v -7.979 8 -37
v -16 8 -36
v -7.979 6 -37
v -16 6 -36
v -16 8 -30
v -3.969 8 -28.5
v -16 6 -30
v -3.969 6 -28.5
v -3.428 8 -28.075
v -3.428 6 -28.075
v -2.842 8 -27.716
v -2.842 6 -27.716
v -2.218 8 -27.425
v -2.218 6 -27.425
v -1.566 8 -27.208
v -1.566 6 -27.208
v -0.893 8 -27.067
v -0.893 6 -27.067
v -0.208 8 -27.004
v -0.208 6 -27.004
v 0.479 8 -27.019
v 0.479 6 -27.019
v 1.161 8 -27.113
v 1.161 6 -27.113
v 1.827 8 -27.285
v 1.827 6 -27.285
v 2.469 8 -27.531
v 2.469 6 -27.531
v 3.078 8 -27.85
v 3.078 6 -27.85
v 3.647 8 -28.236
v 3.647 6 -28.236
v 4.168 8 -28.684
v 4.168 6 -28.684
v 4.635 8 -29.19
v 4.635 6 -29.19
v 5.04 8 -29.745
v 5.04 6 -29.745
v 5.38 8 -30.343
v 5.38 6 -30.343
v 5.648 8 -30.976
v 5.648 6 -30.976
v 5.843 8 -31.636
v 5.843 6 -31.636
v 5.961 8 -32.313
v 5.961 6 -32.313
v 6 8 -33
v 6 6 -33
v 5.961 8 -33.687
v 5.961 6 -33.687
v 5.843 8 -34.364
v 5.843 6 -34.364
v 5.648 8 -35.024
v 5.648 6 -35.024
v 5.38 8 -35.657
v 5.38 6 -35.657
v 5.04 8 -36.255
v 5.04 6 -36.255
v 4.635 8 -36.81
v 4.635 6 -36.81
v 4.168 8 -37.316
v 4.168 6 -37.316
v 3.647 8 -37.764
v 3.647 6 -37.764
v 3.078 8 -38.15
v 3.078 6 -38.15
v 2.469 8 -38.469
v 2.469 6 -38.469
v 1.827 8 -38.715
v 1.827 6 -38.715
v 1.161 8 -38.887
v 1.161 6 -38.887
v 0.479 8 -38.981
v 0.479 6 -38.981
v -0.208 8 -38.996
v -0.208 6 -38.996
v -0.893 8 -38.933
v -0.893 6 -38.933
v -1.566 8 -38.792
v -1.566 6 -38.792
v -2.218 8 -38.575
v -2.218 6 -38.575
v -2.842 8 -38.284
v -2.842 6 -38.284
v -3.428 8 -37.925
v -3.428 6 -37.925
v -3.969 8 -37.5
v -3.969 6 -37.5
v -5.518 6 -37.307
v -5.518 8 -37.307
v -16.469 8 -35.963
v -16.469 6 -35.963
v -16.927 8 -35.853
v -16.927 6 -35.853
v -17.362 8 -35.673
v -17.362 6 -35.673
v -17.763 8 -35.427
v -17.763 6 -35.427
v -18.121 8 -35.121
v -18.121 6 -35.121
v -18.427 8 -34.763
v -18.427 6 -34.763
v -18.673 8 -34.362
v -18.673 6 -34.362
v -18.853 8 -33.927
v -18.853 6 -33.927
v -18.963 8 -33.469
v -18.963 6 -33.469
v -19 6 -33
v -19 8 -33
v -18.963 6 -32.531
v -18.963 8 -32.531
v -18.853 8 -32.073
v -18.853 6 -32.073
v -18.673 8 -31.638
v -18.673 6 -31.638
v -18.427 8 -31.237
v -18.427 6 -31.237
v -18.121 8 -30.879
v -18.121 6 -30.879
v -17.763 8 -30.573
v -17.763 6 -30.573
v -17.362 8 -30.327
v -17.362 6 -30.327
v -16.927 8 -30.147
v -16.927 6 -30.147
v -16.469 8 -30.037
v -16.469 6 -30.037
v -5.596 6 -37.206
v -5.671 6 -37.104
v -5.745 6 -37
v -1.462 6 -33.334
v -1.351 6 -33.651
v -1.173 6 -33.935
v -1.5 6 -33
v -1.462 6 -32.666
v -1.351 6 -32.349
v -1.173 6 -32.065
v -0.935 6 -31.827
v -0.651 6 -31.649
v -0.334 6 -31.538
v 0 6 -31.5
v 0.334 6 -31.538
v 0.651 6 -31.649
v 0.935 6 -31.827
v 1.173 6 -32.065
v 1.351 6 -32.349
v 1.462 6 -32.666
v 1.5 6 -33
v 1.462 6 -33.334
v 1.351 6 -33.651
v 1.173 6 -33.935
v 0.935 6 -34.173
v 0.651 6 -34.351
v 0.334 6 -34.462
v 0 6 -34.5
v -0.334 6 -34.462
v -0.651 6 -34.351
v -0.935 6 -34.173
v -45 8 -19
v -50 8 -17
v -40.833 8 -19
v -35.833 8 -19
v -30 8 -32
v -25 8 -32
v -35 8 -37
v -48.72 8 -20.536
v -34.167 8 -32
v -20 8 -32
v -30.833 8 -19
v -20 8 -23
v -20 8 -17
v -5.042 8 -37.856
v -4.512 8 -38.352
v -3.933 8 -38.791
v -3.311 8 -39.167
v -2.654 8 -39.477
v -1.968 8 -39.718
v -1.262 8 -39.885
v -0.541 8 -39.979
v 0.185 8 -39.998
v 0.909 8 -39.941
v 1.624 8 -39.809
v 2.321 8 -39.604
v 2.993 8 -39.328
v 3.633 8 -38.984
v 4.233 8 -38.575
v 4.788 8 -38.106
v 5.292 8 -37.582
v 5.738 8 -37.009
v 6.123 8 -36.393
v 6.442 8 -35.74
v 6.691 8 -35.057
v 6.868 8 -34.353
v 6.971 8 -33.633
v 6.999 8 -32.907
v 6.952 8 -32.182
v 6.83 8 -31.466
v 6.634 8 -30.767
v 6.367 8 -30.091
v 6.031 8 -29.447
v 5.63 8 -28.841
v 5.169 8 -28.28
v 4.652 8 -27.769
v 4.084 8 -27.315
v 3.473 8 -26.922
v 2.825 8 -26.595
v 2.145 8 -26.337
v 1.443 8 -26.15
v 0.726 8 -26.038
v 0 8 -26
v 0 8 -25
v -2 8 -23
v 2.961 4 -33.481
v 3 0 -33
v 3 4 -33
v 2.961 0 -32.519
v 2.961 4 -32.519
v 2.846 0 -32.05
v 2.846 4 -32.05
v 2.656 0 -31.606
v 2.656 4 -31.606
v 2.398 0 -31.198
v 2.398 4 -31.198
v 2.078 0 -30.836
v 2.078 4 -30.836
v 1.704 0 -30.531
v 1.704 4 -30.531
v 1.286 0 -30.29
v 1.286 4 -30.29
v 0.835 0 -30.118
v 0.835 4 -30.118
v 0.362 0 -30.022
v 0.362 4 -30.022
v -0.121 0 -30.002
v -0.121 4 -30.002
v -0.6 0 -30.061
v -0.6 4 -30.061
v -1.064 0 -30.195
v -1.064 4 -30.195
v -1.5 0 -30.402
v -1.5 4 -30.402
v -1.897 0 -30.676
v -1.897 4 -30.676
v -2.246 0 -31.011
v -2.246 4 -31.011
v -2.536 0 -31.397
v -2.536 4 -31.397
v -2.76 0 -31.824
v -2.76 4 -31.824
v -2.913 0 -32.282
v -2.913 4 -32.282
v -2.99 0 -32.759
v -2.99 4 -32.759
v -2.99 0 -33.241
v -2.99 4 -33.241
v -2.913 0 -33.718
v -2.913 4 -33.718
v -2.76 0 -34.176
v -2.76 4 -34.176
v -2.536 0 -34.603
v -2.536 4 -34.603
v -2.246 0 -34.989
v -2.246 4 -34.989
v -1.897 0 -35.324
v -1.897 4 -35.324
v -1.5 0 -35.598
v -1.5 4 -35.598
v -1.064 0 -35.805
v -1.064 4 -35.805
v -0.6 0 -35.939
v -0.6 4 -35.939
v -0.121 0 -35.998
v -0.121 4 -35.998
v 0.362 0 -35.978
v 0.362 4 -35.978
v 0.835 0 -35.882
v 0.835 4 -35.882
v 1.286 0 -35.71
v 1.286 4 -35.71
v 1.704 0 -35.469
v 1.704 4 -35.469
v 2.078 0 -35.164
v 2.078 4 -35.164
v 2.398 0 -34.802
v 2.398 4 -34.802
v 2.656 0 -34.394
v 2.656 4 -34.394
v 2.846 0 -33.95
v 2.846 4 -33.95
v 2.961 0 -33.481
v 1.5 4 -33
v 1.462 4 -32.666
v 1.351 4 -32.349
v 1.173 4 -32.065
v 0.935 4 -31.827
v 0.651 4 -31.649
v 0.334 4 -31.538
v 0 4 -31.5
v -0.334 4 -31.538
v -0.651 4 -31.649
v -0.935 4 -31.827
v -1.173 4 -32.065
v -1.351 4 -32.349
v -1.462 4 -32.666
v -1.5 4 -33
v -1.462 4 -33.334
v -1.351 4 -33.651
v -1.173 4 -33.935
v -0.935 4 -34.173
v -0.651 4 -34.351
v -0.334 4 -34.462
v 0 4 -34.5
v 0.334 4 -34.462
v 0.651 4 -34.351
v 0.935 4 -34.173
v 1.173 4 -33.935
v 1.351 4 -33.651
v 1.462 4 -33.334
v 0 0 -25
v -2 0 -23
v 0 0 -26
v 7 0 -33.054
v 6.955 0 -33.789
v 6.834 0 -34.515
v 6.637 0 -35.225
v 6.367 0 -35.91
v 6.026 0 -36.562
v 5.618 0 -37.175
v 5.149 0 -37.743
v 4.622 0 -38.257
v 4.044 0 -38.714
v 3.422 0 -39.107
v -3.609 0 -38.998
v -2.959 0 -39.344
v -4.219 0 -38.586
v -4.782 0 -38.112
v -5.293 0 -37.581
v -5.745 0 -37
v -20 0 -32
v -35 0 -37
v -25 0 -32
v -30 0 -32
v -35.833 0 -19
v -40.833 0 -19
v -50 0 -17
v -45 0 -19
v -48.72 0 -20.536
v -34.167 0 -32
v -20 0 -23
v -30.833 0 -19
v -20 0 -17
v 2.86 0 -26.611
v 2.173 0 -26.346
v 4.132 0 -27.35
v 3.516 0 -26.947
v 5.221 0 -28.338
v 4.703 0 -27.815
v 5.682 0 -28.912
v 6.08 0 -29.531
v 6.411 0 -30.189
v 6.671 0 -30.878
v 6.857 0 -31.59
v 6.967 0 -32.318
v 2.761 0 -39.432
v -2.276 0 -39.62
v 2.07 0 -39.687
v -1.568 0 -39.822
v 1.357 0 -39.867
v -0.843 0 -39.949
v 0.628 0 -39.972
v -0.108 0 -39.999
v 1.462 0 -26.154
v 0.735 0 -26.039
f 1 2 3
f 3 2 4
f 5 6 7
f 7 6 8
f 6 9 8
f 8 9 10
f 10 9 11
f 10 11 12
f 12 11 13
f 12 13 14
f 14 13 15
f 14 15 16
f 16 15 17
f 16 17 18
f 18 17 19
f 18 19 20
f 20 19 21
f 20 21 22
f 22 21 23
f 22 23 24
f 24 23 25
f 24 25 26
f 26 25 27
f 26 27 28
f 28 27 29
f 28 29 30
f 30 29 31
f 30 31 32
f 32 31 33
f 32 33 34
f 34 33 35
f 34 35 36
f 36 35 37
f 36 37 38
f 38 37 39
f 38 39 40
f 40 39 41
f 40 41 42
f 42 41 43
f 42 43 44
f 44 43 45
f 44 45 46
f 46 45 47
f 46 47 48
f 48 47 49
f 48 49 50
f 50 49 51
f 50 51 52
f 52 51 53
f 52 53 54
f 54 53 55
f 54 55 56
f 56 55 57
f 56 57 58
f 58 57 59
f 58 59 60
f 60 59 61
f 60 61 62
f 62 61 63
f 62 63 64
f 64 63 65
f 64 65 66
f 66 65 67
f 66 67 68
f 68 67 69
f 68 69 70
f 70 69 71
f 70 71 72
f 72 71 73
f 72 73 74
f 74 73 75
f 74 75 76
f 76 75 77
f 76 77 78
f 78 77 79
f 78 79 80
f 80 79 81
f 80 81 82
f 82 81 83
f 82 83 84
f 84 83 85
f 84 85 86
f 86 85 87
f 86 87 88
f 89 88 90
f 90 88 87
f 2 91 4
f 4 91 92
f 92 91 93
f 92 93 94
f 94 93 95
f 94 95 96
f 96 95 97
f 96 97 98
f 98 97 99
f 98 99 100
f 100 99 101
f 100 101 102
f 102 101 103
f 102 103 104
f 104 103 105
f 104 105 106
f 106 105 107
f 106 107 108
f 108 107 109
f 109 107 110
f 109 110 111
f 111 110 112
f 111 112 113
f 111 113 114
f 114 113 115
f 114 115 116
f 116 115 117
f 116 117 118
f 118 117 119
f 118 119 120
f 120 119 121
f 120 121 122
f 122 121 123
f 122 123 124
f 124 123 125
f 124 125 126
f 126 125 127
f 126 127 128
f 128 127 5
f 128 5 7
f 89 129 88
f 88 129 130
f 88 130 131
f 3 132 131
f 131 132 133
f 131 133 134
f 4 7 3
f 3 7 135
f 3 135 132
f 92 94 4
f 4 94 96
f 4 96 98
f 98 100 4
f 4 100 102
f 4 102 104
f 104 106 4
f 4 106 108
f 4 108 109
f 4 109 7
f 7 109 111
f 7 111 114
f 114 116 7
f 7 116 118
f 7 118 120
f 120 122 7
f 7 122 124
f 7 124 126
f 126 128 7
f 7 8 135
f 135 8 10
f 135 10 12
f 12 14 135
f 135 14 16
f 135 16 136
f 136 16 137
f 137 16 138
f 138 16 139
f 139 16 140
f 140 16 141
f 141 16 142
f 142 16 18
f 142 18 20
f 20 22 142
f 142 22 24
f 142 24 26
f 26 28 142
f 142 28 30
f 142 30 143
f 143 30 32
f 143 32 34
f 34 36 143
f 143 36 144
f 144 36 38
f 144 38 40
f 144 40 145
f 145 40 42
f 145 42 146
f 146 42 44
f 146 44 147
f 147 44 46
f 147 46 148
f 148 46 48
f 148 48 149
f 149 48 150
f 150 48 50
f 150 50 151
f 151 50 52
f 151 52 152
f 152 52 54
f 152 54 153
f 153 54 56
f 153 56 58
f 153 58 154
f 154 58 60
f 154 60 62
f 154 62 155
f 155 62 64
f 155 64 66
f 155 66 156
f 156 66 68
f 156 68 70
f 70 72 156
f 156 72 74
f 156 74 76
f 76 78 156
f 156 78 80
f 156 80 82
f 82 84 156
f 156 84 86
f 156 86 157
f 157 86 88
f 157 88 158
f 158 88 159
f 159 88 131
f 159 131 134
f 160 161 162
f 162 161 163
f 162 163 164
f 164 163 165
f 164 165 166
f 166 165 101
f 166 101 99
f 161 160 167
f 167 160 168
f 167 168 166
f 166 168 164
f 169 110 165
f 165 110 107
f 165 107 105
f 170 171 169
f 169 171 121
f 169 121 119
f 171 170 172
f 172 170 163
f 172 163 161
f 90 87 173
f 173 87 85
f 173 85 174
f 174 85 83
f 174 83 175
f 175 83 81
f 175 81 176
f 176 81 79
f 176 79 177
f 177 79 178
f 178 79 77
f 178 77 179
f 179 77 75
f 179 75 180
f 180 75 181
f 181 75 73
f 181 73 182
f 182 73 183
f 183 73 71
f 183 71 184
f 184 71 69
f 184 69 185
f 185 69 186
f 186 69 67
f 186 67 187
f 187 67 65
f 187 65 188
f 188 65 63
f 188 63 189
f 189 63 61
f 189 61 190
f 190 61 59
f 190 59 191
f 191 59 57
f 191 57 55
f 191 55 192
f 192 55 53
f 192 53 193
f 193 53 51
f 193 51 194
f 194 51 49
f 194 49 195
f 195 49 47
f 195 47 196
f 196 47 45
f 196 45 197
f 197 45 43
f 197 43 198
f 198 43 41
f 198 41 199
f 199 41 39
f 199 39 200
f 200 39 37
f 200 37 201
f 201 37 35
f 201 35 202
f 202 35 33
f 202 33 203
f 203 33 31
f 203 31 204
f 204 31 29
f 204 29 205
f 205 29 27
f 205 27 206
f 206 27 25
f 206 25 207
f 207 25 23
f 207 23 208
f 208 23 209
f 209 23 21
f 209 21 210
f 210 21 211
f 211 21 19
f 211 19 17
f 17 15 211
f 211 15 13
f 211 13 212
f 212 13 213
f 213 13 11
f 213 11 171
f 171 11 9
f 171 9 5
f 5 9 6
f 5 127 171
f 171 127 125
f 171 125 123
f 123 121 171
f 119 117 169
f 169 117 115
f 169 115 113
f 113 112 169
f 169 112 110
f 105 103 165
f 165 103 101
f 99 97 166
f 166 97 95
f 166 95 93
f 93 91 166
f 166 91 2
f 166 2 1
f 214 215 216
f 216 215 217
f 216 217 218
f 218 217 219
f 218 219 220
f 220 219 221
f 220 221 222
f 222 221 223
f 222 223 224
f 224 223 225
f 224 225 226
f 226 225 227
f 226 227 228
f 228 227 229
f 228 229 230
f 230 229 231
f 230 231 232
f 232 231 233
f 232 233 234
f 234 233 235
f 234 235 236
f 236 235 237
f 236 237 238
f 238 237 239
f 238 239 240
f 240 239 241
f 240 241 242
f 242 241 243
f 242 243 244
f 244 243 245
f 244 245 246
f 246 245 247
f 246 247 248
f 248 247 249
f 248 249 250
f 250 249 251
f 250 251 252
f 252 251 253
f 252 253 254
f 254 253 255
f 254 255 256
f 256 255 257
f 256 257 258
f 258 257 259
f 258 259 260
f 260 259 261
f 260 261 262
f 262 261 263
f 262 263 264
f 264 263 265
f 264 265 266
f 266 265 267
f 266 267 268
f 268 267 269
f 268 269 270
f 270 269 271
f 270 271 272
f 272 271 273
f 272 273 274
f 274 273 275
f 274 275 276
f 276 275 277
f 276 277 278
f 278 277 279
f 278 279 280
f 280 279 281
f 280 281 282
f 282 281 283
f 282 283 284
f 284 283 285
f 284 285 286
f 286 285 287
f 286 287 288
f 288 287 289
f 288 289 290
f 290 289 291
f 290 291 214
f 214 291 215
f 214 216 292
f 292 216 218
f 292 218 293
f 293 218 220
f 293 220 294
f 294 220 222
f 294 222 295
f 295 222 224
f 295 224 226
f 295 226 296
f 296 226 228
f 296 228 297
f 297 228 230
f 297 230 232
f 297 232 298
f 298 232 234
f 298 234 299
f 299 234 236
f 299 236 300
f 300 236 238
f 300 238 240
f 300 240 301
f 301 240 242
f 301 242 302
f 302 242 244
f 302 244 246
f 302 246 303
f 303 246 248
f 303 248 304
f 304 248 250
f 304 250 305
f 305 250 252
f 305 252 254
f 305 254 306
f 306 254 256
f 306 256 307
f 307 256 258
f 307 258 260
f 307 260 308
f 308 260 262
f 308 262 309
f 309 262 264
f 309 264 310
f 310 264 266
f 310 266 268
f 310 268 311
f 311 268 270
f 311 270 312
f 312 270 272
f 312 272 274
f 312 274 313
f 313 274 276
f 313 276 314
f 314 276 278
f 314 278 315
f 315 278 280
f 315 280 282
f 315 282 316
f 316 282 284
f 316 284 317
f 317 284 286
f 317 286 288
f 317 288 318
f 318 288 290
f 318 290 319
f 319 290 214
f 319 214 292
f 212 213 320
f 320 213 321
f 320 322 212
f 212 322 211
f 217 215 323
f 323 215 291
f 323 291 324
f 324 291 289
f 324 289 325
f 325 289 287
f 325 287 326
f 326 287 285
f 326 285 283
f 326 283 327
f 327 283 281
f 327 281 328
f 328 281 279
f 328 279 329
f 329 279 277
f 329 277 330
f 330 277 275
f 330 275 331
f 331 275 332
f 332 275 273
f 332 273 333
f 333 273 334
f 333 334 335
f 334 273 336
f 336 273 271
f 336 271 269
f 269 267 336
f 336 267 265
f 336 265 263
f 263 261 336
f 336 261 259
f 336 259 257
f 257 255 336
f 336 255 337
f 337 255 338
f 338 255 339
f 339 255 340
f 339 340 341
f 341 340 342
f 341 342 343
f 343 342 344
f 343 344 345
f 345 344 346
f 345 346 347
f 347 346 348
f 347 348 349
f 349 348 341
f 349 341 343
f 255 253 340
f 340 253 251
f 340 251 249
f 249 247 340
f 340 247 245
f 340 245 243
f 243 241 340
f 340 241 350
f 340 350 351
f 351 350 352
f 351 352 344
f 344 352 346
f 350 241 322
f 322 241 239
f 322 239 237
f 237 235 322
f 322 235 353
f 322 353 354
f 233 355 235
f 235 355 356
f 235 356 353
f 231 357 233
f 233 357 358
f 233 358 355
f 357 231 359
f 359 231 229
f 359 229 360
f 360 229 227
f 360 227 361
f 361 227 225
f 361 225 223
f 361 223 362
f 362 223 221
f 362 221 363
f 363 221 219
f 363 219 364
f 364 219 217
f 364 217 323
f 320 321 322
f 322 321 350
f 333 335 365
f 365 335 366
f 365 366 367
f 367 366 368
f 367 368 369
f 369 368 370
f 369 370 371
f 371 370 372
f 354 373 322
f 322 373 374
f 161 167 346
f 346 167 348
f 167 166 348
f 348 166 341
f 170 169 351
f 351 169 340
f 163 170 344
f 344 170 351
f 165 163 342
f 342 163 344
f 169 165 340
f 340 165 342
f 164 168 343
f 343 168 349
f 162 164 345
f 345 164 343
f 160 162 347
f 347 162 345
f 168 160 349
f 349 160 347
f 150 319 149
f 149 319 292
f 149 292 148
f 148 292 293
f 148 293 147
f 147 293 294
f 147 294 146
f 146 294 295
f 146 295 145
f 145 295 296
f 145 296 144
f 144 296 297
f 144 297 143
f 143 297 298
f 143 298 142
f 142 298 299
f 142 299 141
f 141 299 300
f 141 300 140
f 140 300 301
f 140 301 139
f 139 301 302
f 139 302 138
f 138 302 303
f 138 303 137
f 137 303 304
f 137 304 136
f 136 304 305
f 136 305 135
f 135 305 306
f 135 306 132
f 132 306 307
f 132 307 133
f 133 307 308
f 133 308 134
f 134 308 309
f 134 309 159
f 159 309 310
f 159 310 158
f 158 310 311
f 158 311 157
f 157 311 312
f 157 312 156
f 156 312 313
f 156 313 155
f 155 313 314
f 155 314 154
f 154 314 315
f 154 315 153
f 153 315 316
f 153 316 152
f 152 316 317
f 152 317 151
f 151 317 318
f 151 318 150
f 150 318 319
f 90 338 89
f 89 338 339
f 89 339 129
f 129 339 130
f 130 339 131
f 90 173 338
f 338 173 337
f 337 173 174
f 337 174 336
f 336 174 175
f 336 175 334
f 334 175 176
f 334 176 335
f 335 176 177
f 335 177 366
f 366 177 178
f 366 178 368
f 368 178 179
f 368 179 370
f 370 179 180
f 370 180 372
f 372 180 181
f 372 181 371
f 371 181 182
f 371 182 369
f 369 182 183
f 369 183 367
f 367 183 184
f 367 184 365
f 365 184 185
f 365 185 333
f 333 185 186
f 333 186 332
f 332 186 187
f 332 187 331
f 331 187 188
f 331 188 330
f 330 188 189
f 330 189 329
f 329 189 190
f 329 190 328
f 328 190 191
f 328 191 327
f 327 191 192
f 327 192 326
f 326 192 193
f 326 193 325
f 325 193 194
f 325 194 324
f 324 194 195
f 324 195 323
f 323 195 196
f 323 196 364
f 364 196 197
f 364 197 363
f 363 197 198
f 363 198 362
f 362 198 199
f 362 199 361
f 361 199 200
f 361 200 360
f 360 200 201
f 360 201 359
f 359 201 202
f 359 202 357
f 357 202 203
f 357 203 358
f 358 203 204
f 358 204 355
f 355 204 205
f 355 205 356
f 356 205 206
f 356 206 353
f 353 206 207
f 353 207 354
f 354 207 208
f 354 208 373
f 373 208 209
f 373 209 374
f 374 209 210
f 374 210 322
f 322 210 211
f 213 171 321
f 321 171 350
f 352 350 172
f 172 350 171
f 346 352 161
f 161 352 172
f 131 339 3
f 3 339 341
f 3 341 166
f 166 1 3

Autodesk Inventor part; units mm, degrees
ref_plane "YZ Plane" through (0, 0, 0) normal (1, 0, 0) x (0, 1, 0)
ref_plane "XZ Plane" through (0, 0, 0) normal (0, 1, 0) x (-1, 0, 0)
ref_plane "XY Plane" through (0, 0, 0) normal (0, 0, 1) x (1, 0, 0)
sketch "Boceto1" plane through (0, 0, 0) normal (0, 1, 0) x (-1, 0, 0)
  line L0 (20, -10) -> (20, -16)
  line L1 (50, -16) -> (50, -16.5)
  line L2 (50, -16.5) -> (49.0807, -16.5)
  circle A0 centre (0, -33) radius 1.5
  circle A1 centre (0, -33) radius 3
  arc A2 (0, -26) -> (5.7446, -37) centre (0, -33) ccw
  line L3 (5.7446, -37) -> (35, -37)
  line L4 (35, -37) -> (50, -19)
  line L5 (0, -23) -> (20, -23)
  line L6 (20, -23) -> (20, -17)
  line L7 (20, -17) -> (50, -17)
  line L8 (50, -17) -> (50, -19)
  line L9 (0, -31.5) -> (0, -30)
  line L10 (0, -26) -> (0, -23)
  point P0 (0, -37)
  dimension "d8" = 6
  dimension "d9" = 0.5
extrude "Extrusión1" add sketch "Boceto1" along normal blind 8 contours A1 | L10 L5 L6 L7 L8 L4 L3 A2
sketch "Boceto6" plane through (0, 0, 0) normal (0, -1, 0) x (1, 0, 0)
  line L0 (-50, -17) -> (-20, -17) projected
  line L1 (-50, -16) -> (-50, -14) projected
  line L2 (-50, -17) -> (-50, -16)
  line L3 (-50, -16.5) -> (-16.403, -16.5)
  line L4 (-20, -23) -> (-25, -23)
  line L5 (-5.7446, -37) -> (-35, -37) projected
  line L6 (-25, -23) -> (-25, -28)
  line L7 (-25, -37) -> (-25, -32)
  line L8 (-25, -32) -> (-5.7446, -32)
  line L9 (-5.7446, -32) -> (-5.7446, -27.061)
  line L10 (-25, -28) -> (-5.7446, -28)
  line L11 (-35, -37) -> (-30, -37)
  line L12 (-30, -37) -> (-30, -32)
  line L13 (-30, -32) -> (-25, -32)
  line L14 (-50, -19) -> (-50, -17) projected
  line L15 (-50, -19) -> (-45, -19)
  line L16 (-30, -37) -> (-45, -19)
  line L17 (-45, -19) -> (-40, -19)
  line L18 (-30, -32) -> (-40.8333, -19)
  line L19 (-40.8333, -19) -> (-25, -19)
  line L20 (-25, -19) -> (-25, -28)
  line L21 (-30, -32) -> (-34.1667, -32)
  line L22 (-40.8333, -19) -> (-35.8333, -19)
  line L23 (-35.8333, -19) -> (-25, -32)
  line L24 (-35.8333, -19) -> (-30.8333, -19)
  line L25 (-25, -32) -> (-20, -32)
  line L26 (-20, -32) -> (-30.8333, -19)
  line L27 (-30, 4) -> (-45, -14)
  line L28 (-45, -14) -> (-40, -14)
  line L29 (-30, -1) -> (-40.8333, -14)
  line L30 (-30, -1) -> (-34.1667, -1)
  line L31 (-35.8333, -14) -> (-25, -1)
  line L32 (-35.8333, -14) -> (-30.8333, -14)
  line L33 (-25, -1) -> (-20, -1)
  line L34 (-20, -1) -> (-30.8333, -14)
  point P0 (0, 0)
  dimension "d28" = 5
  dimension "d29" = 5
  dimension "d30" = 5
  dimension "d31" = 5
  dimension "d32" = 5
  dimension "d33" = 5
  dimension "d34" = 5
  dimension "d35" = 5
  dimension "d36" = 5
extrude "Extrusión6" cut sketch "Boceto6" against normal blind 10 contours L23 L19 L26 L6 L10 L8 | L21 L16 L17 L18 | L10 L6 L26 | L30 L29 L28 L27 | L31 L33 L34 L32
sketch "Boceto7" plane through (0, 0, 0) normal (0, -1, 0) x (1, 0, 0)
  line L0 (-35, 4) -> (-5.7446, 4) projected
  arc A0 (7, 0) -> (-5.7446, 4) centre (0, 0) ccw projected
  line L1 (-5.7446, 4) -> (7, 0)
  line L2 (7, 0) -> (8.04, 10.76)
  line L3 (8.04, 10.76) -> (-8.8935, 9.8507)
  line L4 (-8.8935, 9.8507) -> (-5.7446, 4)
extrude "Extrusión7" cut sketch "Boceto7" against normal blind 10 contours L1 A0
chamfer "Chaflán1" distance 2 angle 45 2 edges at (-50, 4, -19) (0, 4, -23)
sketch "Boceto9" plane through (0, 0, 0) normal (0, -1, 0) x (1, 0, 0)
  circle A0 centre (0, -33) radius 1.5 projected
  circle A1 centre (0, -33) radius 3
  point P0 (0, 0)
  dimension "d47" = 6
extrude "Extrusión9" cut sketch "Boceto9" against normal blind 4
sketch "Boceto10" plane through (0, 8, 0) normal (0, 1, 0) x (1, 0, 0)
  circle A0 centre (0, 33) radius 1.5 projected
  circle A1 centre (0, 33) radius 6
  line L0 (0, 33) -> (-19, 33)
  line L1 (0, 33) -> (0, 37.5)
  line L2 (0, 37.5) -> (-19, 37.5)
  line L3 (-19, 37.5) -> (-19, 28.5)
  line L4 (-19, 28.5) -> (0, 28.5)
  line L5 (-19, 33) -> (-16, 33)
  circle A2 centre (-16, 33) radius 3
  circle A3 centre (-16, 33) radius 3
  line L6 (-16, 36) -> (-3.9686, 37.5)
  line L7 (-16, 33) -> (-16, 30)
  line L8 (-16, 30) -> (-3.9686, 28.5)
  point P0 (0, 0)
  dimension "d50" = 12
  dimension "d51" = 19
  dimension "d52" = 4.5
  dimension "d53" = 9
  dimension "d54" = 3
extrude "Extrusión10" cut sketch "Boceto10" against normal blind 2 contours A0 L1 L2 A1 L0 | A0 L0 A1 L2 L1 | L0 A2 L6 A1 | A1 L8 A2 L0 | A2 L7 L0 | L0 A2 | A2 L0 L7
properties part number "pinza dcha sg996r"
